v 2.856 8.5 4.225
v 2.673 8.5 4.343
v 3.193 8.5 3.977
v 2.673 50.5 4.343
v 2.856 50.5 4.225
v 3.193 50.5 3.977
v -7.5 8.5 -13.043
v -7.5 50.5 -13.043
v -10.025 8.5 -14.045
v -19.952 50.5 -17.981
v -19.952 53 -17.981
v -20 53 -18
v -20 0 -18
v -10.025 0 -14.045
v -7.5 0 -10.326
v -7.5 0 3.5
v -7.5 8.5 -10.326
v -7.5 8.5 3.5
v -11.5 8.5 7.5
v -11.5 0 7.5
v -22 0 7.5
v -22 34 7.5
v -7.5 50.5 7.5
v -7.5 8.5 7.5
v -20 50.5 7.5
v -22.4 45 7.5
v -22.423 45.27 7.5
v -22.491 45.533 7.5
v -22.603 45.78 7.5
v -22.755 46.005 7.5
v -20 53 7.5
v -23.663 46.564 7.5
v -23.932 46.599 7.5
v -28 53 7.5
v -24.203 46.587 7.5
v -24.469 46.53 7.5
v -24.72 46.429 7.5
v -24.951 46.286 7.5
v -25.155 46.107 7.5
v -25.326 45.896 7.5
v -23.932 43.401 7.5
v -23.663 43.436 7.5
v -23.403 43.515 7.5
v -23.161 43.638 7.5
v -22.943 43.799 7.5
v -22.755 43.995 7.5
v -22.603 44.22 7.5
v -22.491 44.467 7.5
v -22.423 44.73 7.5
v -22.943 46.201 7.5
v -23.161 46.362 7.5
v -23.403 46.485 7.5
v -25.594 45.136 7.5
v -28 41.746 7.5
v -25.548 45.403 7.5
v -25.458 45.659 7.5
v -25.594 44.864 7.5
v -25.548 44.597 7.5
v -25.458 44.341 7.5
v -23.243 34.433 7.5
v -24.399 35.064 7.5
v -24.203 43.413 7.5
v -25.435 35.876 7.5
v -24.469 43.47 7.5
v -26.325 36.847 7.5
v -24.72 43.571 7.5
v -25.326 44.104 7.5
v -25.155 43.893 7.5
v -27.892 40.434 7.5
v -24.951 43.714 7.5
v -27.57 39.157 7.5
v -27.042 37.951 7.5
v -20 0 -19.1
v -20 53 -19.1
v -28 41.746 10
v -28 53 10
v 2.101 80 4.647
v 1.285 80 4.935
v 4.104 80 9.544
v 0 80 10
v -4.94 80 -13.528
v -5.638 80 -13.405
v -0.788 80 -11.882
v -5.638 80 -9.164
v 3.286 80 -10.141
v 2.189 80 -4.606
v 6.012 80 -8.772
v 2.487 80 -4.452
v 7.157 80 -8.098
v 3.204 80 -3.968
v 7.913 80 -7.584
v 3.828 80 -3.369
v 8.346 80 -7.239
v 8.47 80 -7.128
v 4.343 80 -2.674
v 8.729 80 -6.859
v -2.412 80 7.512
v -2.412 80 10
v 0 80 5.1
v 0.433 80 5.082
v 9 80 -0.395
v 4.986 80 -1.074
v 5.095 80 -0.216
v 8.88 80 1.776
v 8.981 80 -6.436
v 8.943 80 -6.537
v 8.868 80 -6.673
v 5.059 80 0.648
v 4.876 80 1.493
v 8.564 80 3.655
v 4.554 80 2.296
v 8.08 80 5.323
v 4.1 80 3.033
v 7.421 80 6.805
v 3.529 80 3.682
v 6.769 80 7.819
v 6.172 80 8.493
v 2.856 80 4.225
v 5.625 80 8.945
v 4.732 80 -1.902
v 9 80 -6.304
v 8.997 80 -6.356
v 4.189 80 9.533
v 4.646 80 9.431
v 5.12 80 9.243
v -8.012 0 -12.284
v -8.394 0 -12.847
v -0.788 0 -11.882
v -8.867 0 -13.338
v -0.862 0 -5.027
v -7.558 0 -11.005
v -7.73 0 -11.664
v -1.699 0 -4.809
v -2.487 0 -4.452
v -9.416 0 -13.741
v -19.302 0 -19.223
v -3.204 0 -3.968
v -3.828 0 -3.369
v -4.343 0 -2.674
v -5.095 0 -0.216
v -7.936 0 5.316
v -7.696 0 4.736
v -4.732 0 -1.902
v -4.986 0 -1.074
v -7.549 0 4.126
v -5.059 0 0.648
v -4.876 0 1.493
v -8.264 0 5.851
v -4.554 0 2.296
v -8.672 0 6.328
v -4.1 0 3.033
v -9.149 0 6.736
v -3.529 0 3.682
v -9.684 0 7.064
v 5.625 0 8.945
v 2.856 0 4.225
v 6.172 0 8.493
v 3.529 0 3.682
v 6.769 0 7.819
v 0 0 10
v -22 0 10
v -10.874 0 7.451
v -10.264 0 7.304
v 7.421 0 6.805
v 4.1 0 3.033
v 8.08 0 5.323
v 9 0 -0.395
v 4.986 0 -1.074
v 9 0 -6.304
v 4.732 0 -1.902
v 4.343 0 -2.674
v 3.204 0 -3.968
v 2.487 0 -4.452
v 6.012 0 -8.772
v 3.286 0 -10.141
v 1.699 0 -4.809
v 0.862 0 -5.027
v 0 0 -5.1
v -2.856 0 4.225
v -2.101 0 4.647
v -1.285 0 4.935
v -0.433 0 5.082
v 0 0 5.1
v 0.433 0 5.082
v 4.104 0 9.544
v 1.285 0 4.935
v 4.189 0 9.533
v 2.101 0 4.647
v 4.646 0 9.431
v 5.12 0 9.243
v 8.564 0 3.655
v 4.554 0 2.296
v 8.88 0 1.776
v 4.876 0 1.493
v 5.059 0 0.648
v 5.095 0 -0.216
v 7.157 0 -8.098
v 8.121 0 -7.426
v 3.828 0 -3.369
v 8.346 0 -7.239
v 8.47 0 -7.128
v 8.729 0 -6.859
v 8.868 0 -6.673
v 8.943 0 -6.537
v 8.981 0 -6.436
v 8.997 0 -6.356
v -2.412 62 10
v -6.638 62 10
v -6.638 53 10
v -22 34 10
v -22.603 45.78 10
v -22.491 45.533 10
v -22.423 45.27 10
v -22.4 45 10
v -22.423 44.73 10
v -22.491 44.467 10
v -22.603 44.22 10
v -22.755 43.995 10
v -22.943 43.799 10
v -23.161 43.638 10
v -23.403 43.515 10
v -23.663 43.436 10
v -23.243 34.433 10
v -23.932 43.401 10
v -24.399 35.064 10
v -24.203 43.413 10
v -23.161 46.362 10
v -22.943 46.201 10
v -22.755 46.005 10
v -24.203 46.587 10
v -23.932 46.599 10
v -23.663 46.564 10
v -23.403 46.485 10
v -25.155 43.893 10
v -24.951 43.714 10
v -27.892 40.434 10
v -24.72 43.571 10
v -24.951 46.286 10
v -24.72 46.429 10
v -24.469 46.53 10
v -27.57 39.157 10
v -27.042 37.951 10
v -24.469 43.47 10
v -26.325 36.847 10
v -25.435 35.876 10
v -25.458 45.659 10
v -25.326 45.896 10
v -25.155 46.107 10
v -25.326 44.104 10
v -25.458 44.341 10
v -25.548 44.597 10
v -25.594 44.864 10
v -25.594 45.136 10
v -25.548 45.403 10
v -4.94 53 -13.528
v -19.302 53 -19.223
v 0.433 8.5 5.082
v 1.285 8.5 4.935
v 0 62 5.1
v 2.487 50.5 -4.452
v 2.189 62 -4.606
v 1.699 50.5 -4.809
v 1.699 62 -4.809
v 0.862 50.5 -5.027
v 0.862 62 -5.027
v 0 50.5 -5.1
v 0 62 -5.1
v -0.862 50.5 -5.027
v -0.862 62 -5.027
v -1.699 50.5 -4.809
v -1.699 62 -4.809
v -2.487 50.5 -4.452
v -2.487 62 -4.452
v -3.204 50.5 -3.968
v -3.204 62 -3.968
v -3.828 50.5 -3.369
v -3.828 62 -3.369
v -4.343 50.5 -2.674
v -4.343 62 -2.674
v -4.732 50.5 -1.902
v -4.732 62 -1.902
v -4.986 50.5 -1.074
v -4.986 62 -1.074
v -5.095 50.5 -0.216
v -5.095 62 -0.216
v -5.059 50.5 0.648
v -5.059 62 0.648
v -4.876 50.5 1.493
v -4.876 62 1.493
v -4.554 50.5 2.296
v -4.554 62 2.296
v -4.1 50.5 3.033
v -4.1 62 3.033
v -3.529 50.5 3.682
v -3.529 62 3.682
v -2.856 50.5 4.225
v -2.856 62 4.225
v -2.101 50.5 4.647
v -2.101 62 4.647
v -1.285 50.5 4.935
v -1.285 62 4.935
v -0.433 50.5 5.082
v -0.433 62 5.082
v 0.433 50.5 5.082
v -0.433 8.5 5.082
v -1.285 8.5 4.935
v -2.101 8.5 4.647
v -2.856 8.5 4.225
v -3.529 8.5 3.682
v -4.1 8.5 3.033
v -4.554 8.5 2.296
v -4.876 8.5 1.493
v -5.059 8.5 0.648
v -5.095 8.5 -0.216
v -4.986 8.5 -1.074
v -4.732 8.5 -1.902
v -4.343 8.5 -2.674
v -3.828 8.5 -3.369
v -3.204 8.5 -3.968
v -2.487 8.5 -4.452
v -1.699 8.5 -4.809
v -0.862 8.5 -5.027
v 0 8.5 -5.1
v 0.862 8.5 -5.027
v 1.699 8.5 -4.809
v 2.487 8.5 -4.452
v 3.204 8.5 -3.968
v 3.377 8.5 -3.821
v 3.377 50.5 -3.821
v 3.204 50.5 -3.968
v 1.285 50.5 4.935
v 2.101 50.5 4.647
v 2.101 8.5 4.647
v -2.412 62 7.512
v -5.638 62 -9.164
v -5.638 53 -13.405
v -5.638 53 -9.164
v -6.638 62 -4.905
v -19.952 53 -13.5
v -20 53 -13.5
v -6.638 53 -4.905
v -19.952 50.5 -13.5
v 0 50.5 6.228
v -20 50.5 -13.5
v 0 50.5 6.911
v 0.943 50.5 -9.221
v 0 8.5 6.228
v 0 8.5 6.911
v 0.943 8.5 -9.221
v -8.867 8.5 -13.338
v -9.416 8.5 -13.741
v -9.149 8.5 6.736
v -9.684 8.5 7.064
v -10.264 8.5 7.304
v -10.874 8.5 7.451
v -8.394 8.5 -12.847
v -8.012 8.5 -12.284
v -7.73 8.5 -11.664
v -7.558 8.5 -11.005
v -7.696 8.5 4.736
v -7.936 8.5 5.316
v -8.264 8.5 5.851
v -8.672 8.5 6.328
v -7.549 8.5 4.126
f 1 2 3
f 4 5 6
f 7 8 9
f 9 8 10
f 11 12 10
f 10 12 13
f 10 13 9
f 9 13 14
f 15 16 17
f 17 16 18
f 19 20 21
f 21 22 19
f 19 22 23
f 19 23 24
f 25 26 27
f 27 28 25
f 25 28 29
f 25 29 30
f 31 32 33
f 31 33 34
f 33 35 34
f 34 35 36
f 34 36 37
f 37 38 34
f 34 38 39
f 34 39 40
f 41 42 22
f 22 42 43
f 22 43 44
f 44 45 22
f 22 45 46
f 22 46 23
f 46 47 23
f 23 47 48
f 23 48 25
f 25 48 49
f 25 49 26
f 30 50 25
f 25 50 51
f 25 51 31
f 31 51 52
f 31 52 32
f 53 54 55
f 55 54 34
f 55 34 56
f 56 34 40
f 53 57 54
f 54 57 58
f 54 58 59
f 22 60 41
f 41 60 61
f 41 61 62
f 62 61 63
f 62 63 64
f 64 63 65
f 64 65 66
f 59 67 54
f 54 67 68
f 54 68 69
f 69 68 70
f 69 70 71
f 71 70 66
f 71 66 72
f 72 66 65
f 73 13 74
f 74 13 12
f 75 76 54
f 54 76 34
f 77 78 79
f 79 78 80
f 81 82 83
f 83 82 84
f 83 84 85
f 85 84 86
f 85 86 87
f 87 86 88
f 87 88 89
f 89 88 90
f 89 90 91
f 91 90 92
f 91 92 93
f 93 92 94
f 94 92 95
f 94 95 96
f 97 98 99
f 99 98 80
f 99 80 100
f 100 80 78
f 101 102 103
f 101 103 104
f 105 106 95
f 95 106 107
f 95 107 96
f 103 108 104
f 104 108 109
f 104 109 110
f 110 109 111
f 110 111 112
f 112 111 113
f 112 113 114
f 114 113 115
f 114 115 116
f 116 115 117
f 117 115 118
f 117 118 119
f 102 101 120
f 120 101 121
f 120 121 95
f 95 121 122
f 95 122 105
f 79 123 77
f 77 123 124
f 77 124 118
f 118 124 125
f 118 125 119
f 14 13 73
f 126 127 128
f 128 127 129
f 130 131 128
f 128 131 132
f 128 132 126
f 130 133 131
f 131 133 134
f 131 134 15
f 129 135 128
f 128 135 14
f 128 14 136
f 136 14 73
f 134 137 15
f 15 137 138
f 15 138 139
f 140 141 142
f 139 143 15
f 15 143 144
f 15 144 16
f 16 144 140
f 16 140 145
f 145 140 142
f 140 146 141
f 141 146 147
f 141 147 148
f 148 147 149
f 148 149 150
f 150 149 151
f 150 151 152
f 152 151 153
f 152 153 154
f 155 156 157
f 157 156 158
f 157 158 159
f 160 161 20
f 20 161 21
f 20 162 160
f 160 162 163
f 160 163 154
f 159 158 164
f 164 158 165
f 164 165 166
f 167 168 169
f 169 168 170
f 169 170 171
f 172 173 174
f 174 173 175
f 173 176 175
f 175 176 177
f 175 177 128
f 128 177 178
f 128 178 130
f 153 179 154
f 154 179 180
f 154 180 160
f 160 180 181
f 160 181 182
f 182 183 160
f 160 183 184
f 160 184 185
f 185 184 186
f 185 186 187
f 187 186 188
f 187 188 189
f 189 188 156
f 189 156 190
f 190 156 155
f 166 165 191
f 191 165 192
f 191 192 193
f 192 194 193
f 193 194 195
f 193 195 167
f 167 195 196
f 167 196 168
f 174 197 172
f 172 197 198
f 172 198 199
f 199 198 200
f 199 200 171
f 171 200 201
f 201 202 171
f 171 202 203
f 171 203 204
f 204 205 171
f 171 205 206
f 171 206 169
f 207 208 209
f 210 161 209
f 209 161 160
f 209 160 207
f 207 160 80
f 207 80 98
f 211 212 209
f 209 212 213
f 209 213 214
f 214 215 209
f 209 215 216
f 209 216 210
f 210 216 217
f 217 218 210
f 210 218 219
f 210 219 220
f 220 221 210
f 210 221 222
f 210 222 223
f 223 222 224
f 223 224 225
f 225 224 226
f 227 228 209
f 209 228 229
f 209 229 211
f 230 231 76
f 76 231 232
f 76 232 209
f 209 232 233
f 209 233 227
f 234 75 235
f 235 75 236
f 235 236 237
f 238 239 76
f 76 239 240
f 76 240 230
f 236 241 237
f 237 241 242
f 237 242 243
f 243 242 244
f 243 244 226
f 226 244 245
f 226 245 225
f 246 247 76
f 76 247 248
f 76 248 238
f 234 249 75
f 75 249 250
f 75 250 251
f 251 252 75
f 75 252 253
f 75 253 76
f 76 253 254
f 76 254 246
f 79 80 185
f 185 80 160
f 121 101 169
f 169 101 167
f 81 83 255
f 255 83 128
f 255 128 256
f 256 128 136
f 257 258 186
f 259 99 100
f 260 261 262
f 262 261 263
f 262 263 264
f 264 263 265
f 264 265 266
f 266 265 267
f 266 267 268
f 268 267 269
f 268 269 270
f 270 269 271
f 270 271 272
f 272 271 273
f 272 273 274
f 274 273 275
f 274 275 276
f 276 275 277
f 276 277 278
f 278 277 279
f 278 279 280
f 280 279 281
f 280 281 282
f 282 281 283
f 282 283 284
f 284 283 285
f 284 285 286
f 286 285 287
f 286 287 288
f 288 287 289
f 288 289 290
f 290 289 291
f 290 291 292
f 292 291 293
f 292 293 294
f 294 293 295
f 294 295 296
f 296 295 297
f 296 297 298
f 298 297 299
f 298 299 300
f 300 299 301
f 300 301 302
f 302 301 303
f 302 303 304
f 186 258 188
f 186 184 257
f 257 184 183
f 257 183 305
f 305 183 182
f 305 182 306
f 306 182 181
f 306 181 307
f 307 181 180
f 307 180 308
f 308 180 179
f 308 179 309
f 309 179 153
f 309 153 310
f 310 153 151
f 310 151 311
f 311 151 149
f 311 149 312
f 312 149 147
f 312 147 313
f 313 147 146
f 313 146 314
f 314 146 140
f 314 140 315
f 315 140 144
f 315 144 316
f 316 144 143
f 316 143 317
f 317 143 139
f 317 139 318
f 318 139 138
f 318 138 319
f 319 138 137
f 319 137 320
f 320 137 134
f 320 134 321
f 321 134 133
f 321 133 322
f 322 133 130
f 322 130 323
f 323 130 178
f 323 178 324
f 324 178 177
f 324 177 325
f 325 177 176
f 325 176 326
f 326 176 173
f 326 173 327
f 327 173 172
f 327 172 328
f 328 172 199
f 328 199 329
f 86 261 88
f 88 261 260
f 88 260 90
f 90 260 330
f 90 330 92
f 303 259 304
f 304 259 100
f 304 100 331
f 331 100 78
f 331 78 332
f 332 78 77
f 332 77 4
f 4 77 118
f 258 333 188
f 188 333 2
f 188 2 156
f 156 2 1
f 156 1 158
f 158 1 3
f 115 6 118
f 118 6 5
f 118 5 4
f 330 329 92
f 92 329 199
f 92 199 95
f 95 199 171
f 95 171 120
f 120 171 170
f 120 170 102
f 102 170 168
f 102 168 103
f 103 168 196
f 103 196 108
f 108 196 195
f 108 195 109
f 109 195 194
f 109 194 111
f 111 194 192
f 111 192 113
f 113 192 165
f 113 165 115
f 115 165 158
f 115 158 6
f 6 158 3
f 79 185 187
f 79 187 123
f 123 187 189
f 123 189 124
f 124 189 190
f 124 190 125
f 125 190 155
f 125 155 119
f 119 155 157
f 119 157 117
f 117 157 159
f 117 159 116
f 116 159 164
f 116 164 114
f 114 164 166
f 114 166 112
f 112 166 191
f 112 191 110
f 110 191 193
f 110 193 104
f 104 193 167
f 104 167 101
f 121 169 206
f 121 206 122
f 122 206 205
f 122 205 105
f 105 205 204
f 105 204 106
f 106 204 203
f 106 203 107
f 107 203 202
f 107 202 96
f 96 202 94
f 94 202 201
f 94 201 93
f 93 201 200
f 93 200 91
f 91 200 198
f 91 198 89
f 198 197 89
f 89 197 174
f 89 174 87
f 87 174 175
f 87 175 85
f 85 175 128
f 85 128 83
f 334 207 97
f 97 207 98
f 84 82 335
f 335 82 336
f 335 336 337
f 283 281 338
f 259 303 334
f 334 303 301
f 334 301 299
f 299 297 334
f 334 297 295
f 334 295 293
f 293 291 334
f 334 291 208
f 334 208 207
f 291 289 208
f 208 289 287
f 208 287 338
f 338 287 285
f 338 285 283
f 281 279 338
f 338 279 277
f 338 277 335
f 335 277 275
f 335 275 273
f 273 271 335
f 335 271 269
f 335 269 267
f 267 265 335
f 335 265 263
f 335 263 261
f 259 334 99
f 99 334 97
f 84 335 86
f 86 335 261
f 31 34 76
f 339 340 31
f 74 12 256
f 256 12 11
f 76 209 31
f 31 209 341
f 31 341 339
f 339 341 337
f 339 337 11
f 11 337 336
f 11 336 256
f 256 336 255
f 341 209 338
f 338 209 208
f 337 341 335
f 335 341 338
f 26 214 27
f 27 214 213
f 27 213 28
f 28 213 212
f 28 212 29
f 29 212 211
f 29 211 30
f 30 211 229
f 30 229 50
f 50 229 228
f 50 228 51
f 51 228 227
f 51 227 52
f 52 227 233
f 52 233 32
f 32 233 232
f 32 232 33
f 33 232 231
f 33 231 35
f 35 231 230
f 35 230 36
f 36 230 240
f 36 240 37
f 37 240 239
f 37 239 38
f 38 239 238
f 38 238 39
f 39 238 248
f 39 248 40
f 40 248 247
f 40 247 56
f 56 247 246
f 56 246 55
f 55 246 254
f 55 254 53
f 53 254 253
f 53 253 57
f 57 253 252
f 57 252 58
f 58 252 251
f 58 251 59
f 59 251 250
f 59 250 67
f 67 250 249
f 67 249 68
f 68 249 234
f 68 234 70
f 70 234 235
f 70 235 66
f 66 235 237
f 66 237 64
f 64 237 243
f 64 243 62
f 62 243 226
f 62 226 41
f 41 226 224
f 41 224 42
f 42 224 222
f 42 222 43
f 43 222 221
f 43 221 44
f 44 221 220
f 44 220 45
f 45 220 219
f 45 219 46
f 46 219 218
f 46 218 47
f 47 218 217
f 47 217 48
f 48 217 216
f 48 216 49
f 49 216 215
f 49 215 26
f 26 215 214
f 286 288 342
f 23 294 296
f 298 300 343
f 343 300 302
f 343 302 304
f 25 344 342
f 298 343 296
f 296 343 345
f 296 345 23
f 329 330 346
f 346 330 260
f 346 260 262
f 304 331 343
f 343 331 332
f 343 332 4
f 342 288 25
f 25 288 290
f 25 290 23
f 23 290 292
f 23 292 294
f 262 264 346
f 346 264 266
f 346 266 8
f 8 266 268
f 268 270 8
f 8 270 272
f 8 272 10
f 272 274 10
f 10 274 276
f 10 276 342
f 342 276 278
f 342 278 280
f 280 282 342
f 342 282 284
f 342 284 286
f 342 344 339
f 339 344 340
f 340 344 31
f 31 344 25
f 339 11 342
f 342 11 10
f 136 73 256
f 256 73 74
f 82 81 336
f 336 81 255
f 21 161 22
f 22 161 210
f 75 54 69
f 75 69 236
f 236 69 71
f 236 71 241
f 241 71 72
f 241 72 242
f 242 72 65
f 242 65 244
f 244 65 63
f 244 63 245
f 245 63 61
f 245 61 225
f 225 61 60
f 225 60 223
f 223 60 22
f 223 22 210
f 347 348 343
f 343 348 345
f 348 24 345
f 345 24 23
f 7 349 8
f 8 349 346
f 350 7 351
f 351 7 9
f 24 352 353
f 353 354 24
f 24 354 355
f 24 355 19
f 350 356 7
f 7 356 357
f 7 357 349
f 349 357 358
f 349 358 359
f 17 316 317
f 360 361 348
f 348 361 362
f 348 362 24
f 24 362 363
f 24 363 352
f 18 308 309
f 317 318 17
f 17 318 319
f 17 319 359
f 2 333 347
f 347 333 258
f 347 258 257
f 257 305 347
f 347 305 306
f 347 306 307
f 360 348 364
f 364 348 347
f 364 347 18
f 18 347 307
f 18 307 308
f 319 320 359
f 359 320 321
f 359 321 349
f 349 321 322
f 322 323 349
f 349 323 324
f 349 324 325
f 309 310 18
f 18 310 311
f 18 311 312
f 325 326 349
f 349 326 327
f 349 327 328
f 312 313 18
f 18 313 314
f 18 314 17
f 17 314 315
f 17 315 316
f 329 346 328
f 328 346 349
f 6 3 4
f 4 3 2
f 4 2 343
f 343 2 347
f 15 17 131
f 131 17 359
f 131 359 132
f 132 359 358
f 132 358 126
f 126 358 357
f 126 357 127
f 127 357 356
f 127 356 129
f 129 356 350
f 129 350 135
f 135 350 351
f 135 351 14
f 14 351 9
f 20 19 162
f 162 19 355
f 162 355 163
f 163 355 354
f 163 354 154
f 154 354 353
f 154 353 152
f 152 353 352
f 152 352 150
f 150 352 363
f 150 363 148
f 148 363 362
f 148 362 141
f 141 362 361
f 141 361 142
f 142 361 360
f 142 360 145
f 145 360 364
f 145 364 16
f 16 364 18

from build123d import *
from OCP.BRepFilletAPI import BRepFilletAPI_MakeChamfer

# Parameters (mm, degrees)
SKETCH1_R           = 5.1
BOSS_EXTRUDE1_DEPTH = 80
CUT_EXTRUDE2_START  = -18
CUT_EXTRUDE2_DEPTH  = 18
CUT_EXTRUDE3_DEPTH  = 9
SKETCH8_R           = 1.6
CUT_EXTRUDE5_DEPTH  = 10
SKETCH10_W          = 12.5
SKETCH10_H          = 2.5
BOSS_EXTRUDE3_DEPTH = 21
CHAMFER1_SIZE       = 11.3
CHAMFER1_SIZE2      = 12.156054871
CHAMFER2_SIZE       = 0.4
CHAMFER2_SIZE2      = 0.751123796
SKETCH11_W          = 6
SKETCH11_H          = 34
CUT_EXTRUDE6_DEPTH  = 10
FILLET3_R           = 8
CUT_EXTRUDE7_START  = -50.5
CUT_EXTRUDE7_DEPTH  = 42
CHAMFER4_START      = 8.5
CHAMFER4_DEPTH      = 42
CHAMFER4_2_DEPTH    = 42
FILLET4_R           = 4


with BuildPart() as part:
    # Sketch1 → Boss-Extrude1 (new body)
    with BuildSketch(Plane(origin=(0, 0, 0), x_dir=(1, 0, 0), z_dir=(0, 1, 0))):
        Polygon((0, -10), (9, -9), (9, 8), (-20, 19.5), (-20, 18), (-7.5, 13.043103448), (-7.5, -7.5), (-28, -7.5), (-28, -10), align=None)
        with Locations(Location((0, 0, 0), (0, 0, 270))):
            Circle(SKETCH1_R, mode=Mode.SUBTRACT)
    extrude(amount=BOSS_EXTRUDE1_DEPTH)

    # Fillet1
    # a fillet whose section is not a circle: 10, 6 mm, written as the material it takes off along each edge
    with BuildSketch(Plane(origin=(9, -23.487180939, 9), x_dir=(-0.993883734673619, 0, 0.11043152607484658), z_dir=(0, 1, 0))) as fillet1_piece_1:
        with BuildLine():
            Bezier((4.925812314, 0), (0, 0), (-1.037490094, -9.337410844), weights=[1, 0.745128018, 1])
            Line((-1.037490094, -9.337410844), (0, 0))
            Line((0, 0), (4.925812314, 0))
        make_face()
    extrude(amount=126.974361879, mode=Mode.SUBTRACT)

    # Fillet2
    # a fillet whose section is not a circle: 12, 6 mm, written as the material it takes off along each edge
    with BuildSketch(Plane(origin=(9, -26.324436186, -8), x_dir=(-0.9295779033226579, 0, -0.368625720283123), z_dir=(0, 1, 0))) as fillet2_piece_1:
        with BuildLine():
            Bezier((10.529774474, 0), (0, 0), (-0.625160366, 1.576491357), weights=[1, 0.827232047, 1])
            Line((-0.625160366, 1.576491357), (0, 0))
            Line((0, 0), (10.529774474, 0))
        make_face()
    extrude(amount=132.648872372, mode=Mode.SUBTRACT)

    # Sketch5 → Cut-Extrude2 (cut)
    with BuildSketch(Plane(origin=(0, 80, 0), x_dir=(1, 0, 0), z_dir=(0, 1, 0)).offset(CUT_EXTRUDE2_START)):
        with BuildLine():
            Line((-40.382705662, 23.287650548), (-40.382705662, -15.07166092))
            Line((-40.382705662, -15.07166092), (-2.412422064, -15.07166092))
            Line((-2.412422064, -15.07166092), (-2.412422064, -7.512422064))
            Line((-2.412422064, -7.512422064), (0, -5.1))
            ThreePointArc((0, -5.1), (4.863777761, -1.534166188), (2.926213093, 4.176993768))
            Line((2.926213093, 4.176993768), (-5.637939913, 9.164476421))
            Line((-5.637939913, 9.164476421), (-5.637939913, 23.287650548))
            Line((-5.637939913, 23.287650548), (-40.382705662, 23.287650548))
        make_face()
    extrude(amount=CUT_EXTRUDE2_DEPTH, mode=Mode.SUBTRACT)

    # Sketch6 → Cut-Extrude3 (cut)
    with BuildSketch(Plane(origin=(0, 62, 0), x_dir=(1, 0, 0), z_dir=(0, 1, 0))):
        Polygon((-6.637939913, -10), (-28, -10), (-28, 21.40414119), (-6.637939913, 21.40414119), (-5.637939913, 21.40414119), (-5.637939913, 9.164476421), (-6.637939913, 4.905415269), align=None)
    extrude(amount=-CUT_EXTRUDE3_DEPTH, mode=Mode.SUBTRACT)

    # Sketch8 → Cut-Extrude5 (cut)
    with BuildSketch(Plane.XY.offset(10)):
        with Locations((-24, 45)):
            Circle(SKETCH8_R)
    extrude(amount=-CUT_EXTRUDE5_DEPTH, mode=Mode.SUBTRACT)

    # Sketch10 → Boss-Extrude3 (add)
    with BuildSketch(Plane(origin=(0, 0, 7.5), x_dir=(-1, 0, 0), z_dir=(0, 0, -1))):
        with Locations((13.75, 51.75)):
            Rectangle(SKETCH10_W, SKETCH10_H)
    extrude(amount=BOSS_EXTRUDE3_DEPTH)

    # Chamfer1
    chamfer1_edges = [part.edges().sort_by_distance(p)[0] for p in [
        (-8.652173913, 51.75, -13.5),
    ]]
    chamfer1_side = [part.faces().sort_by_distance(p)[0] for p in [
        (-14.326086957, 51.75, -13.5),
    ]]
    chamfer(chamfer1_edges, length=CHAMFER1_SIZE, length2=CHAMFER1_SIZE2, reference=chamfer1_side[0])

    # Chamfer2: one chamfer whose edges measure the first distance from different faces: ONE call of the kernel's chamfer builder (chamfer() names one face for all edges)
    chamfer2_edges_1 = [part.edges().sort_by_distance(p)[0] for p in [
        (-5.637939913, 66.5, -13.80470031),
    ]]
    chamfer2_side_1 = [part.faces().sort_by_distance(p)[0] for p in [
        (-5.637939913, 66.5, -11.484588366),
    ]]
    chamfer2_edges_2 = [part.edges().sort_by_distance(p)[0] for p in [
        (-20, 26.5, -19.5),
    ]]
    chamfer2_side_2 = [part.faces().sort_by_distance(p)[0] for p in [
        (-20, 26.5, -18.75),
    ]]
    chamfer2 = BRepFilletAPI_MakeChamfer(part.part.solid().wrapped)
    for e in chamfer2_edges_1:
        chamfer2.Add(CHAMFER2_SIZE, CHAMFER2_SIZE2, e.wrapped, chamfer2_side_1[0].wrapped)  # the first distance lies on this face
    for e in chamfer2_edges_2:
        chamfer2.Add(CHAMFER2_SIZE, CHAMFER2_SIZE2, e.wrapped, chamfer2_side_2[0].wrapped)  # the first distance lies on this face
    add(Compound.cast(chamfer2.Shape()), mode=Mode.REPLACE)

    # Sketch11 → Cut-Extrude6 (cut)
    with BuildSketch(Plane(origin=(0, 0, 7.5), x_dir=(-1, 0, 0), z_dir=(0, 0, -1))):
        with Locations((25, 17)):
            Rectangle(SKETCH11_W, SKETCH11_H)
    extrude(amount=-CUT_EXTRUDE6_DEPTH, mode=Mode.SUBTRACT)

    # Fillet3
    # the kernel refuses this fillet: 8 mm, written as the material it takes off along each edge
    with BuildSketch(Plane(origin=(-28, 34, -11.864916731), x_dir=(0, 1, 0), z_dir=(0, 0, 1))) as fillet3_piece_1:
        with BuildLine():
            CenterArc((7.745966692, -8), FILLET3_R, 90, 75.522487814)
            Line((0, -6), (-0.154919334, -5.96))
            ThreePointArc((-0.154919334, -5.96), (-0.16, -3), (-0.16, 0))
            Line((-0.16, 0), (0, 0.16))
            Line((0, 0.16), (7.745966692, 0.16))
            Line((7.745966692, 0.16), (7.745966692, 0))
        make_face()
    extrude(amount=41.229833462, mode=Mode.SUBTRACT)

    # Sketch12 → Cut-Extrude7 (cut)
    with BuildSketch(Plane.XZ.offset(CUT_EXTRUDE7_START)):
        Polygon((-7.5, -13.043103448), (0, -9.648284322), (0, 6.91148674), (-7.5, 7.5), align=None)
    extrude(amount=CUT_EXTRUDE7_DEPTH, mode=Mode.SUBTRACT)

    # Chamfer3
    # the kernel refuses this chamfer: 10 mm, written as the material it takes off along each edge
    with BuildSketch(Plane(origin=(0, 50.5, -5.1), x_dir=(0.9352222959192602, 0, 0.3540610924904171), z_dir=(0, -1, 0))) as chamfer3_piece_1_section:
        with BuildLine():
            Line((3.894265856, 0.282842712), (-2.483031603, -6.094454747))
            Line((-2.483031603, -6.094454747), (-2.670076063, -6.023642528))
            ThreePointArc((-2.670076063, -6.023642528), (-1.351695644, -3.005514942), (-0.187044459, 0.070812218))
            Line((-0.187044459, 0.070812218), (0.070812218, 0.187044459))
            ThreePointArc((0.070812218, 0.187044459), (1.955367921, -0.128080347), (3.823453637, 0.469887172))
            Line((3.823453637, 0.469887172), (3.894265856, 0.282842712))
        make_face()
    chamfer3_piece_1 = extrude(amount=42, mode=Mode.PRIVATE)
    chamfer3_piece_1 = split(chamfer3_piece_1, bisect_by=Plane(origin=(1.70866642, 50.5, -8.874869196), z_dir=(-0.4123656941532171, 0, 0.9110184050201925)), keep=Keep.TOP, mode=Mode.PRIVATE)
    add(chamfer3_piece_1, mode=Mode.SUBTRACT)

    # Chamfer4: read off the stored shape, not the designer's step
    # Chamfer4 outline → Chamfer4 (cut)
    with BuildSketch(Plane(origin=(0, 0, 0), x_dir=(1, 0, 0), z_dir=(0, 1, 0)).offset(CHAMFER4_START)):
        with BuildLine():
            Line((0, -5.1), (0, -6.228017105))
            Line((0, -6.228017105), (2.673318305, -4.343198043))
            ThreePointArc((2.673318305, -4.343198043), (1.389188609, -4.907153453), (0, -5.1))
        make_face()
    extrude(amount=CHAMFER4_DEPTH, mode=Mode.SUBTRACT)

    # Chamfer4 2 outline → Chamfer4 2 (add)
    with BuildSketch(Plane(origin=(0, 0, 0), x_dir=(1, 0, 0), z_dir=(0, 1, 0)).offset(CHAMFER4_START)):
        with BuildLine():
            Line((3.192787517, -3.976947054), (2.673318305, -4.343198043))
            ThreePointArc((2.673318305, -4.343198043), (2.938764081, -4.168172942), (3.192787517, -3.976947054))
        make_face()
    extrude(amount=CHAMFER4_2_DEPTH)

    # Fillet4
    # the kernel refuses this fillet: 4 mm, written as the material it adds along each edge
    with BuildSketch(Plane(origin=(-7.5, 0, 7.5), x_dir=(-1, 0, 0), z_dir=(0, 1, 0))) as fillet4_piece_1:
        with BuildLine():
            CenterArc((FILLET4_R, -FILLET4_R), FILLET4_R, 90, 90)
            Line((0, -FILLET4_R), (0, 0))
            Line((0, 0), (FILLET4_R, 0))
        make_face()
    extrude(amount=8.5)
    with BuildSketch(Plane(origin=(-7.5, 0, -13.043103448), x_dir=(-0.9295779033226581, 0, -0.3686257202831227), z_dir=(0, 1, 0))) as fillet4_piece_2:
        with BuildLine():
            CenterArc((FILLET4_R * 0.679205344125, FILLET4_R), FILLET4_R, 201.630886837, 68.369113163)
            Line((-FILLET4_R * 0.250372559198, FILLET4_R * 0.631374279717), (0, 0))
            Line((0, 0), (FILLET4_R * 0.679205344125, 0))
        make_face()
    extrude(amount=8.5)


solid = part.part
